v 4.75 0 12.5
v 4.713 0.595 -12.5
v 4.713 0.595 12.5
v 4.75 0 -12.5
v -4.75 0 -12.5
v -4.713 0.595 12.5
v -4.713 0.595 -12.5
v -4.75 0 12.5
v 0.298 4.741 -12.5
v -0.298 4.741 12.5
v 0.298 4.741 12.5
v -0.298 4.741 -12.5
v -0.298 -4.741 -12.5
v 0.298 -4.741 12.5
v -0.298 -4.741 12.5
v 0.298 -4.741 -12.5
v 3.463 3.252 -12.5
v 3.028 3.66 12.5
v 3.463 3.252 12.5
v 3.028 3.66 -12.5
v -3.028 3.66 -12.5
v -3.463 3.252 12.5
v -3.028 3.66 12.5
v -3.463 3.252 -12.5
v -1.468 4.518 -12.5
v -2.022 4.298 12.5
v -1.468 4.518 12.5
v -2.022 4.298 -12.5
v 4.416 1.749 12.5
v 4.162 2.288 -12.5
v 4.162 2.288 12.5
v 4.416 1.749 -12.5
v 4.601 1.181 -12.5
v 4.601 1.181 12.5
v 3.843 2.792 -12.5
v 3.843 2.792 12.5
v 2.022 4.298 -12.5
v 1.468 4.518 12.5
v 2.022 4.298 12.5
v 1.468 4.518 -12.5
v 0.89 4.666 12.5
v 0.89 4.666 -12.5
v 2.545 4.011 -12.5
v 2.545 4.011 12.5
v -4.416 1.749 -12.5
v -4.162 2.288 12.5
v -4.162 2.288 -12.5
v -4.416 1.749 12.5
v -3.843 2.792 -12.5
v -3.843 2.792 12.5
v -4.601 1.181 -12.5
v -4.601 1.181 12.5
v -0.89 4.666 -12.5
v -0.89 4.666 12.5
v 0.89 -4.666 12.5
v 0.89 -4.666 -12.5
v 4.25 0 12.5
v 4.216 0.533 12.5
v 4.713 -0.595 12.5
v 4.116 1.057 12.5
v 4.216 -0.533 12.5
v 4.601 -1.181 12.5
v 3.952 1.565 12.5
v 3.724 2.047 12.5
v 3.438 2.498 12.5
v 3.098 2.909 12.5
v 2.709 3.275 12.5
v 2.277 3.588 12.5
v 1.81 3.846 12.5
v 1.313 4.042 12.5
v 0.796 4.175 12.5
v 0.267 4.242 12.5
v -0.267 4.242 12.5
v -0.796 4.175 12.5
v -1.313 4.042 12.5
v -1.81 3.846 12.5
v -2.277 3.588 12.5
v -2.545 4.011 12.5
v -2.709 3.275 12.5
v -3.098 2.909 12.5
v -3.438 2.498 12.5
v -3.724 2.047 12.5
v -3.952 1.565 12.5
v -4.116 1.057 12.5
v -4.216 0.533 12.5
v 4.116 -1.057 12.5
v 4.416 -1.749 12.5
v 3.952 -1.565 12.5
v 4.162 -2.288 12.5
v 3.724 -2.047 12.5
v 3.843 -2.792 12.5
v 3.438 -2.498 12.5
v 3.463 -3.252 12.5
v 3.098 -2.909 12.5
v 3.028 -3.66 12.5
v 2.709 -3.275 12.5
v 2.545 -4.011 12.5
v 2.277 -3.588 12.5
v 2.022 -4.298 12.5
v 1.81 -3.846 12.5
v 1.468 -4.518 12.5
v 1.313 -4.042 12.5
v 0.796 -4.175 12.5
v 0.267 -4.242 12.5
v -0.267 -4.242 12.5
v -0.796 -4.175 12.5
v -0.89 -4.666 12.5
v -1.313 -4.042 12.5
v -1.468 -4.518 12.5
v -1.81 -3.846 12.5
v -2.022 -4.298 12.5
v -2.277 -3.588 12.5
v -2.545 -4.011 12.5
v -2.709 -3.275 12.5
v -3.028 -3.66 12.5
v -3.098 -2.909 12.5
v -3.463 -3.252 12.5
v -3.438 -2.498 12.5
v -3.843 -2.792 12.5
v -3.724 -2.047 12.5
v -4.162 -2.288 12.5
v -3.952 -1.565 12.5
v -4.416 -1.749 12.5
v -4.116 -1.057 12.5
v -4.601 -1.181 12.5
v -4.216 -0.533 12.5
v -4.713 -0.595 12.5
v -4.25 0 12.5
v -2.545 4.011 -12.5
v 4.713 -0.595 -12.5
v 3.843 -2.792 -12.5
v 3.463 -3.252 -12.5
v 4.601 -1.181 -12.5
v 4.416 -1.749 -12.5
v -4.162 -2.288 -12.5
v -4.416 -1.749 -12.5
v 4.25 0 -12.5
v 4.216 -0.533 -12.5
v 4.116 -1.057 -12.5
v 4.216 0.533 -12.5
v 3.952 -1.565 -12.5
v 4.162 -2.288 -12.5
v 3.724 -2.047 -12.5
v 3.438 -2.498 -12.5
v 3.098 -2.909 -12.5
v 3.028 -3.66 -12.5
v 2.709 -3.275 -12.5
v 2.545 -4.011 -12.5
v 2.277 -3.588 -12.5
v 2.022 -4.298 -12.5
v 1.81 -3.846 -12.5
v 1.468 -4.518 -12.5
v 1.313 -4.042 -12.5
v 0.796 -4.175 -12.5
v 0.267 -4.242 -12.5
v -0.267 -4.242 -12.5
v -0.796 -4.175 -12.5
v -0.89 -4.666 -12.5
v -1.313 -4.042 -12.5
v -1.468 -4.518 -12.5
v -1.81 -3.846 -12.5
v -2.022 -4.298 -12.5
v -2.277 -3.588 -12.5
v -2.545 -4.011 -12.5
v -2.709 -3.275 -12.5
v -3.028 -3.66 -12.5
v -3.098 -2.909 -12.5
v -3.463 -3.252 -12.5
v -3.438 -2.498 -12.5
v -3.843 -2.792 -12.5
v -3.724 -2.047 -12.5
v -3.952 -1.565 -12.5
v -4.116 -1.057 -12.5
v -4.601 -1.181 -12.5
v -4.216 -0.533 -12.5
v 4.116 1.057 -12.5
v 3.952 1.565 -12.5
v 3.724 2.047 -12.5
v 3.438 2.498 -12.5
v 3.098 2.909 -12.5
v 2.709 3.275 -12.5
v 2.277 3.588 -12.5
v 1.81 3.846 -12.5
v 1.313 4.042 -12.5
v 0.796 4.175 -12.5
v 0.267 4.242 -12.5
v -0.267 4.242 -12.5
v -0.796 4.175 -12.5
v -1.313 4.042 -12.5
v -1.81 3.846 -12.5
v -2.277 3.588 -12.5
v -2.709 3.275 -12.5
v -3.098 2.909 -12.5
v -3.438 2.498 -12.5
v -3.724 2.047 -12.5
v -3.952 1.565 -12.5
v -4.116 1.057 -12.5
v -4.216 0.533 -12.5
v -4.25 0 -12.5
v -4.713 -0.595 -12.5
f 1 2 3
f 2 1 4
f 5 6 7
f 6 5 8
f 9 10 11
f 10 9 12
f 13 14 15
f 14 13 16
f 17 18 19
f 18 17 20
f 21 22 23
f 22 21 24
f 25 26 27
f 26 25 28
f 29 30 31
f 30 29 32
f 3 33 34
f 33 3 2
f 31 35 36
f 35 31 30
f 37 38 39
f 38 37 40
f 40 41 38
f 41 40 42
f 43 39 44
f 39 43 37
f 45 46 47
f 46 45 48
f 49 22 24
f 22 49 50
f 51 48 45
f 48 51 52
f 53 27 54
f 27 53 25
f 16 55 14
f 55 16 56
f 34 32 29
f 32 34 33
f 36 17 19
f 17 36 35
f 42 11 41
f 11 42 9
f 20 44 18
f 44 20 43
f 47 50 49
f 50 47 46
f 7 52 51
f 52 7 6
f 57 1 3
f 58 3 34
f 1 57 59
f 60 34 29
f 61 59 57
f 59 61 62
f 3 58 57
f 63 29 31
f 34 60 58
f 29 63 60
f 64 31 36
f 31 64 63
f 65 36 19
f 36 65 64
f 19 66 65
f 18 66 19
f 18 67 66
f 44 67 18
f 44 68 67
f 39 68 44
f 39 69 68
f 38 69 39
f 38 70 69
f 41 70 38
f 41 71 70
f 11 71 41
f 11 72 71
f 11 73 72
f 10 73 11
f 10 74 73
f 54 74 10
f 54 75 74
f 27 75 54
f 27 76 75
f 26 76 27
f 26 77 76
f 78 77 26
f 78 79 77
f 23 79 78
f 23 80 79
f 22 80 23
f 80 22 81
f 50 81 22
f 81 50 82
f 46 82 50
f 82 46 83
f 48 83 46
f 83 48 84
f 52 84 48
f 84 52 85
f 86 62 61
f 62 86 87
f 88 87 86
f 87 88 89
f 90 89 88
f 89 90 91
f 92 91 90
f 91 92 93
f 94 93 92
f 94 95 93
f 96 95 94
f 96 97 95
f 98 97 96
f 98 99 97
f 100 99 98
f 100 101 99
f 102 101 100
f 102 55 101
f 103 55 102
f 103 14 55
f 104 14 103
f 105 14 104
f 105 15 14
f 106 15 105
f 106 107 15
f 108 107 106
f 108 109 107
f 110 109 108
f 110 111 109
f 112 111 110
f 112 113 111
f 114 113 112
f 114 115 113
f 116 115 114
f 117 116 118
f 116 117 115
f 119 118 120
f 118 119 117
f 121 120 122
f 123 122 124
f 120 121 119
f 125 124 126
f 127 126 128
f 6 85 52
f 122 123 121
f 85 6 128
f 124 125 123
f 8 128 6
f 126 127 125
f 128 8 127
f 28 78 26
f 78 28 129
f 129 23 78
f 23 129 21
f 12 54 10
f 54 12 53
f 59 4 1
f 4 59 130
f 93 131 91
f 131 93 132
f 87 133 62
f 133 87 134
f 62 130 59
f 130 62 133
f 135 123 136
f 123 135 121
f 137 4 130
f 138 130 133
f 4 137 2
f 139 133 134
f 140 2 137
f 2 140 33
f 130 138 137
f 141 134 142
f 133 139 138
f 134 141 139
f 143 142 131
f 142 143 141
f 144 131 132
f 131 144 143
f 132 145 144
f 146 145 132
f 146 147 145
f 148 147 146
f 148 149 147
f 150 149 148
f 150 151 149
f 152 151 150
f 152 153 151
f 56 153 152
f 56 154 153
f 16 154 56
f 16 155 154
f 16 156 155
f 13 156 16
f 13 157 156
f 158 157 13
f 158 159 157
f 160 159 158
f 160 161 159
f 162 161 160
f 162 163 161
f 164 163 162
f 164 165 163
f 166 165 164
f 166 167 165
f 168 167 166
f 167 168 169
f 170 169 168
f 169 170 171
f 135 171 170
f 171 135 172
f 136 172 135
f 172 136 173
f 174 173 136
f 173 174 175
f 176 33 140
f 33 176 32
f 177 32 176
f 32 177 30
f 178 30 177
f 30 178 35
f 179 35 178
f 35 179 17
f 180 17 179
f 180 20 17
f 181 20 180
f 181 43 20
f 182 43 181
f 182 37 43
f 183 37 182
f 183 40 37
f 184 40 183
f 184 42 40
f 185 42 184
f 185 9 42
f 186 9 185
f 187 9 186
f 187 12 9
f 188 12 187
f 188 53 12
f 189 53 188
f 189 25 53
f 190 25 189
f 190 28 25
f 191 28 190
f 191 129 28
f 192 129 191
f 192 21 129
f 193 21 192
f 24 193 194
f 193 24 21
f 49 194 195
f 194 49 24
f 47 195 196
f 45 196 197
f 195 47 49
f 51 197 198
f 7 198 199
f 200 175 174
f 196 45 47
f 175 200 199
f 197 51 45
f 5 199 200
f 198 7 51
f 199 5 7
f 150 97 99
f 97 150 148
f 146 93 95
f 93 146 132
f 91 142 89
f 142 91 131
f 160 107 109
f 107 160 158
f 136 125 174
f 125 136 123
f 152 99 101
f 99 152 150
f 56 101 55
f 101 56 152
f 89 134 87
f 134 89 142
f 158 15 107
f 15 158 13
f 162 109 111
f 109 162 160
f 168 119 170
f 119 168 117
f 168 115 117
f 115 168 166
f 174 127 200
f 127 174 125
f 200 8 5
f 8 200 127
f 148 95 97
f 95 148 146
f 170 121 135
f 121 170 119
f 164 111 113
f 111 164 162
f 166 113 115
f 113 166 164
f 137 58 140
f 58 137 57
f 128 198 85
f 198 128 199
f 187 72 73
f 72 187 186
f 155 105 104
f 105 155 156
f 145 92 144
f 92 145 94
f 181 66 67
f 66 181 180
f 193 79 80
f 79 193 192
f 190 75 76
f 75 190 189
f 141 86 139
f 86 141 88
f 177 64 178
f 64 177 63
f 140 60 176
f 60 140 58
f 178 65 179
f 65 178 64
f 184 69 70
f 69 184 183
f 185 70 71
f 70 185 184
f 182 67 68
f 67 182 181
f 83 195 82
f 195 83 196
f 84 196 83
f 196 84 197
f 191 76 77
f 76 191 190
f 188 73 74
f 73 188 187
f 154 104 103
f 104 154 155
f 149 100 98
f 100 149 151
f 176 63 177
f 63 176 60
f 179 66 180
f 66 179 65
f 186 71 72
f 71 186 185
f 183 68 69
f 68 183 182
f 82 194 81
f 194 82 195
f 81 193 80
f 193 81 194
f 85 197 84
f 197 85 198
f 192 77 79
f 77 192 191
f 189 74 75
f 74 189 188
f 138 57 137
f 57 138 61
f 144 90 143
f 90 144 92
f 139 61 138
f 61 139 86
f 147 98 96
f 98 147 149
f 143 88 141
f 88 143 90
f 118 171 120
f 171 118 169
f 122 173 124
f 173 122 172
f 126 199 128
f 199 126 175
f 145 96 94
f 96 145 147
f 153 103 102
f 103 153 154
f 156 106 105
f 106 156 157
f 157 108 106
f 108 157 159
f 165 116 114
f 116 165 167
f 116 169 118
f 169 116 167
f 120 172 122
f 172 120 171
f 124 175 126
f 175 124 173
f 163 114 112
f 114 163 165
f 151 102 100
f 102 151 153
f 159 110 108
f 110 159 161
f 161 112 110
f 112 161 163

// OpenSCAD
$fn = 50;


difference() {
	union() {
		translate(v = [0, 0, -12.5000000000]) {
			cylinder(h = 25, r = 4.7500000000);
		}
	}
	union() {
		translate(v = [0, 0, -100.0000000000]) {
			cylinder(h = 200, r = 4.2500000000);
		}
	}
}
